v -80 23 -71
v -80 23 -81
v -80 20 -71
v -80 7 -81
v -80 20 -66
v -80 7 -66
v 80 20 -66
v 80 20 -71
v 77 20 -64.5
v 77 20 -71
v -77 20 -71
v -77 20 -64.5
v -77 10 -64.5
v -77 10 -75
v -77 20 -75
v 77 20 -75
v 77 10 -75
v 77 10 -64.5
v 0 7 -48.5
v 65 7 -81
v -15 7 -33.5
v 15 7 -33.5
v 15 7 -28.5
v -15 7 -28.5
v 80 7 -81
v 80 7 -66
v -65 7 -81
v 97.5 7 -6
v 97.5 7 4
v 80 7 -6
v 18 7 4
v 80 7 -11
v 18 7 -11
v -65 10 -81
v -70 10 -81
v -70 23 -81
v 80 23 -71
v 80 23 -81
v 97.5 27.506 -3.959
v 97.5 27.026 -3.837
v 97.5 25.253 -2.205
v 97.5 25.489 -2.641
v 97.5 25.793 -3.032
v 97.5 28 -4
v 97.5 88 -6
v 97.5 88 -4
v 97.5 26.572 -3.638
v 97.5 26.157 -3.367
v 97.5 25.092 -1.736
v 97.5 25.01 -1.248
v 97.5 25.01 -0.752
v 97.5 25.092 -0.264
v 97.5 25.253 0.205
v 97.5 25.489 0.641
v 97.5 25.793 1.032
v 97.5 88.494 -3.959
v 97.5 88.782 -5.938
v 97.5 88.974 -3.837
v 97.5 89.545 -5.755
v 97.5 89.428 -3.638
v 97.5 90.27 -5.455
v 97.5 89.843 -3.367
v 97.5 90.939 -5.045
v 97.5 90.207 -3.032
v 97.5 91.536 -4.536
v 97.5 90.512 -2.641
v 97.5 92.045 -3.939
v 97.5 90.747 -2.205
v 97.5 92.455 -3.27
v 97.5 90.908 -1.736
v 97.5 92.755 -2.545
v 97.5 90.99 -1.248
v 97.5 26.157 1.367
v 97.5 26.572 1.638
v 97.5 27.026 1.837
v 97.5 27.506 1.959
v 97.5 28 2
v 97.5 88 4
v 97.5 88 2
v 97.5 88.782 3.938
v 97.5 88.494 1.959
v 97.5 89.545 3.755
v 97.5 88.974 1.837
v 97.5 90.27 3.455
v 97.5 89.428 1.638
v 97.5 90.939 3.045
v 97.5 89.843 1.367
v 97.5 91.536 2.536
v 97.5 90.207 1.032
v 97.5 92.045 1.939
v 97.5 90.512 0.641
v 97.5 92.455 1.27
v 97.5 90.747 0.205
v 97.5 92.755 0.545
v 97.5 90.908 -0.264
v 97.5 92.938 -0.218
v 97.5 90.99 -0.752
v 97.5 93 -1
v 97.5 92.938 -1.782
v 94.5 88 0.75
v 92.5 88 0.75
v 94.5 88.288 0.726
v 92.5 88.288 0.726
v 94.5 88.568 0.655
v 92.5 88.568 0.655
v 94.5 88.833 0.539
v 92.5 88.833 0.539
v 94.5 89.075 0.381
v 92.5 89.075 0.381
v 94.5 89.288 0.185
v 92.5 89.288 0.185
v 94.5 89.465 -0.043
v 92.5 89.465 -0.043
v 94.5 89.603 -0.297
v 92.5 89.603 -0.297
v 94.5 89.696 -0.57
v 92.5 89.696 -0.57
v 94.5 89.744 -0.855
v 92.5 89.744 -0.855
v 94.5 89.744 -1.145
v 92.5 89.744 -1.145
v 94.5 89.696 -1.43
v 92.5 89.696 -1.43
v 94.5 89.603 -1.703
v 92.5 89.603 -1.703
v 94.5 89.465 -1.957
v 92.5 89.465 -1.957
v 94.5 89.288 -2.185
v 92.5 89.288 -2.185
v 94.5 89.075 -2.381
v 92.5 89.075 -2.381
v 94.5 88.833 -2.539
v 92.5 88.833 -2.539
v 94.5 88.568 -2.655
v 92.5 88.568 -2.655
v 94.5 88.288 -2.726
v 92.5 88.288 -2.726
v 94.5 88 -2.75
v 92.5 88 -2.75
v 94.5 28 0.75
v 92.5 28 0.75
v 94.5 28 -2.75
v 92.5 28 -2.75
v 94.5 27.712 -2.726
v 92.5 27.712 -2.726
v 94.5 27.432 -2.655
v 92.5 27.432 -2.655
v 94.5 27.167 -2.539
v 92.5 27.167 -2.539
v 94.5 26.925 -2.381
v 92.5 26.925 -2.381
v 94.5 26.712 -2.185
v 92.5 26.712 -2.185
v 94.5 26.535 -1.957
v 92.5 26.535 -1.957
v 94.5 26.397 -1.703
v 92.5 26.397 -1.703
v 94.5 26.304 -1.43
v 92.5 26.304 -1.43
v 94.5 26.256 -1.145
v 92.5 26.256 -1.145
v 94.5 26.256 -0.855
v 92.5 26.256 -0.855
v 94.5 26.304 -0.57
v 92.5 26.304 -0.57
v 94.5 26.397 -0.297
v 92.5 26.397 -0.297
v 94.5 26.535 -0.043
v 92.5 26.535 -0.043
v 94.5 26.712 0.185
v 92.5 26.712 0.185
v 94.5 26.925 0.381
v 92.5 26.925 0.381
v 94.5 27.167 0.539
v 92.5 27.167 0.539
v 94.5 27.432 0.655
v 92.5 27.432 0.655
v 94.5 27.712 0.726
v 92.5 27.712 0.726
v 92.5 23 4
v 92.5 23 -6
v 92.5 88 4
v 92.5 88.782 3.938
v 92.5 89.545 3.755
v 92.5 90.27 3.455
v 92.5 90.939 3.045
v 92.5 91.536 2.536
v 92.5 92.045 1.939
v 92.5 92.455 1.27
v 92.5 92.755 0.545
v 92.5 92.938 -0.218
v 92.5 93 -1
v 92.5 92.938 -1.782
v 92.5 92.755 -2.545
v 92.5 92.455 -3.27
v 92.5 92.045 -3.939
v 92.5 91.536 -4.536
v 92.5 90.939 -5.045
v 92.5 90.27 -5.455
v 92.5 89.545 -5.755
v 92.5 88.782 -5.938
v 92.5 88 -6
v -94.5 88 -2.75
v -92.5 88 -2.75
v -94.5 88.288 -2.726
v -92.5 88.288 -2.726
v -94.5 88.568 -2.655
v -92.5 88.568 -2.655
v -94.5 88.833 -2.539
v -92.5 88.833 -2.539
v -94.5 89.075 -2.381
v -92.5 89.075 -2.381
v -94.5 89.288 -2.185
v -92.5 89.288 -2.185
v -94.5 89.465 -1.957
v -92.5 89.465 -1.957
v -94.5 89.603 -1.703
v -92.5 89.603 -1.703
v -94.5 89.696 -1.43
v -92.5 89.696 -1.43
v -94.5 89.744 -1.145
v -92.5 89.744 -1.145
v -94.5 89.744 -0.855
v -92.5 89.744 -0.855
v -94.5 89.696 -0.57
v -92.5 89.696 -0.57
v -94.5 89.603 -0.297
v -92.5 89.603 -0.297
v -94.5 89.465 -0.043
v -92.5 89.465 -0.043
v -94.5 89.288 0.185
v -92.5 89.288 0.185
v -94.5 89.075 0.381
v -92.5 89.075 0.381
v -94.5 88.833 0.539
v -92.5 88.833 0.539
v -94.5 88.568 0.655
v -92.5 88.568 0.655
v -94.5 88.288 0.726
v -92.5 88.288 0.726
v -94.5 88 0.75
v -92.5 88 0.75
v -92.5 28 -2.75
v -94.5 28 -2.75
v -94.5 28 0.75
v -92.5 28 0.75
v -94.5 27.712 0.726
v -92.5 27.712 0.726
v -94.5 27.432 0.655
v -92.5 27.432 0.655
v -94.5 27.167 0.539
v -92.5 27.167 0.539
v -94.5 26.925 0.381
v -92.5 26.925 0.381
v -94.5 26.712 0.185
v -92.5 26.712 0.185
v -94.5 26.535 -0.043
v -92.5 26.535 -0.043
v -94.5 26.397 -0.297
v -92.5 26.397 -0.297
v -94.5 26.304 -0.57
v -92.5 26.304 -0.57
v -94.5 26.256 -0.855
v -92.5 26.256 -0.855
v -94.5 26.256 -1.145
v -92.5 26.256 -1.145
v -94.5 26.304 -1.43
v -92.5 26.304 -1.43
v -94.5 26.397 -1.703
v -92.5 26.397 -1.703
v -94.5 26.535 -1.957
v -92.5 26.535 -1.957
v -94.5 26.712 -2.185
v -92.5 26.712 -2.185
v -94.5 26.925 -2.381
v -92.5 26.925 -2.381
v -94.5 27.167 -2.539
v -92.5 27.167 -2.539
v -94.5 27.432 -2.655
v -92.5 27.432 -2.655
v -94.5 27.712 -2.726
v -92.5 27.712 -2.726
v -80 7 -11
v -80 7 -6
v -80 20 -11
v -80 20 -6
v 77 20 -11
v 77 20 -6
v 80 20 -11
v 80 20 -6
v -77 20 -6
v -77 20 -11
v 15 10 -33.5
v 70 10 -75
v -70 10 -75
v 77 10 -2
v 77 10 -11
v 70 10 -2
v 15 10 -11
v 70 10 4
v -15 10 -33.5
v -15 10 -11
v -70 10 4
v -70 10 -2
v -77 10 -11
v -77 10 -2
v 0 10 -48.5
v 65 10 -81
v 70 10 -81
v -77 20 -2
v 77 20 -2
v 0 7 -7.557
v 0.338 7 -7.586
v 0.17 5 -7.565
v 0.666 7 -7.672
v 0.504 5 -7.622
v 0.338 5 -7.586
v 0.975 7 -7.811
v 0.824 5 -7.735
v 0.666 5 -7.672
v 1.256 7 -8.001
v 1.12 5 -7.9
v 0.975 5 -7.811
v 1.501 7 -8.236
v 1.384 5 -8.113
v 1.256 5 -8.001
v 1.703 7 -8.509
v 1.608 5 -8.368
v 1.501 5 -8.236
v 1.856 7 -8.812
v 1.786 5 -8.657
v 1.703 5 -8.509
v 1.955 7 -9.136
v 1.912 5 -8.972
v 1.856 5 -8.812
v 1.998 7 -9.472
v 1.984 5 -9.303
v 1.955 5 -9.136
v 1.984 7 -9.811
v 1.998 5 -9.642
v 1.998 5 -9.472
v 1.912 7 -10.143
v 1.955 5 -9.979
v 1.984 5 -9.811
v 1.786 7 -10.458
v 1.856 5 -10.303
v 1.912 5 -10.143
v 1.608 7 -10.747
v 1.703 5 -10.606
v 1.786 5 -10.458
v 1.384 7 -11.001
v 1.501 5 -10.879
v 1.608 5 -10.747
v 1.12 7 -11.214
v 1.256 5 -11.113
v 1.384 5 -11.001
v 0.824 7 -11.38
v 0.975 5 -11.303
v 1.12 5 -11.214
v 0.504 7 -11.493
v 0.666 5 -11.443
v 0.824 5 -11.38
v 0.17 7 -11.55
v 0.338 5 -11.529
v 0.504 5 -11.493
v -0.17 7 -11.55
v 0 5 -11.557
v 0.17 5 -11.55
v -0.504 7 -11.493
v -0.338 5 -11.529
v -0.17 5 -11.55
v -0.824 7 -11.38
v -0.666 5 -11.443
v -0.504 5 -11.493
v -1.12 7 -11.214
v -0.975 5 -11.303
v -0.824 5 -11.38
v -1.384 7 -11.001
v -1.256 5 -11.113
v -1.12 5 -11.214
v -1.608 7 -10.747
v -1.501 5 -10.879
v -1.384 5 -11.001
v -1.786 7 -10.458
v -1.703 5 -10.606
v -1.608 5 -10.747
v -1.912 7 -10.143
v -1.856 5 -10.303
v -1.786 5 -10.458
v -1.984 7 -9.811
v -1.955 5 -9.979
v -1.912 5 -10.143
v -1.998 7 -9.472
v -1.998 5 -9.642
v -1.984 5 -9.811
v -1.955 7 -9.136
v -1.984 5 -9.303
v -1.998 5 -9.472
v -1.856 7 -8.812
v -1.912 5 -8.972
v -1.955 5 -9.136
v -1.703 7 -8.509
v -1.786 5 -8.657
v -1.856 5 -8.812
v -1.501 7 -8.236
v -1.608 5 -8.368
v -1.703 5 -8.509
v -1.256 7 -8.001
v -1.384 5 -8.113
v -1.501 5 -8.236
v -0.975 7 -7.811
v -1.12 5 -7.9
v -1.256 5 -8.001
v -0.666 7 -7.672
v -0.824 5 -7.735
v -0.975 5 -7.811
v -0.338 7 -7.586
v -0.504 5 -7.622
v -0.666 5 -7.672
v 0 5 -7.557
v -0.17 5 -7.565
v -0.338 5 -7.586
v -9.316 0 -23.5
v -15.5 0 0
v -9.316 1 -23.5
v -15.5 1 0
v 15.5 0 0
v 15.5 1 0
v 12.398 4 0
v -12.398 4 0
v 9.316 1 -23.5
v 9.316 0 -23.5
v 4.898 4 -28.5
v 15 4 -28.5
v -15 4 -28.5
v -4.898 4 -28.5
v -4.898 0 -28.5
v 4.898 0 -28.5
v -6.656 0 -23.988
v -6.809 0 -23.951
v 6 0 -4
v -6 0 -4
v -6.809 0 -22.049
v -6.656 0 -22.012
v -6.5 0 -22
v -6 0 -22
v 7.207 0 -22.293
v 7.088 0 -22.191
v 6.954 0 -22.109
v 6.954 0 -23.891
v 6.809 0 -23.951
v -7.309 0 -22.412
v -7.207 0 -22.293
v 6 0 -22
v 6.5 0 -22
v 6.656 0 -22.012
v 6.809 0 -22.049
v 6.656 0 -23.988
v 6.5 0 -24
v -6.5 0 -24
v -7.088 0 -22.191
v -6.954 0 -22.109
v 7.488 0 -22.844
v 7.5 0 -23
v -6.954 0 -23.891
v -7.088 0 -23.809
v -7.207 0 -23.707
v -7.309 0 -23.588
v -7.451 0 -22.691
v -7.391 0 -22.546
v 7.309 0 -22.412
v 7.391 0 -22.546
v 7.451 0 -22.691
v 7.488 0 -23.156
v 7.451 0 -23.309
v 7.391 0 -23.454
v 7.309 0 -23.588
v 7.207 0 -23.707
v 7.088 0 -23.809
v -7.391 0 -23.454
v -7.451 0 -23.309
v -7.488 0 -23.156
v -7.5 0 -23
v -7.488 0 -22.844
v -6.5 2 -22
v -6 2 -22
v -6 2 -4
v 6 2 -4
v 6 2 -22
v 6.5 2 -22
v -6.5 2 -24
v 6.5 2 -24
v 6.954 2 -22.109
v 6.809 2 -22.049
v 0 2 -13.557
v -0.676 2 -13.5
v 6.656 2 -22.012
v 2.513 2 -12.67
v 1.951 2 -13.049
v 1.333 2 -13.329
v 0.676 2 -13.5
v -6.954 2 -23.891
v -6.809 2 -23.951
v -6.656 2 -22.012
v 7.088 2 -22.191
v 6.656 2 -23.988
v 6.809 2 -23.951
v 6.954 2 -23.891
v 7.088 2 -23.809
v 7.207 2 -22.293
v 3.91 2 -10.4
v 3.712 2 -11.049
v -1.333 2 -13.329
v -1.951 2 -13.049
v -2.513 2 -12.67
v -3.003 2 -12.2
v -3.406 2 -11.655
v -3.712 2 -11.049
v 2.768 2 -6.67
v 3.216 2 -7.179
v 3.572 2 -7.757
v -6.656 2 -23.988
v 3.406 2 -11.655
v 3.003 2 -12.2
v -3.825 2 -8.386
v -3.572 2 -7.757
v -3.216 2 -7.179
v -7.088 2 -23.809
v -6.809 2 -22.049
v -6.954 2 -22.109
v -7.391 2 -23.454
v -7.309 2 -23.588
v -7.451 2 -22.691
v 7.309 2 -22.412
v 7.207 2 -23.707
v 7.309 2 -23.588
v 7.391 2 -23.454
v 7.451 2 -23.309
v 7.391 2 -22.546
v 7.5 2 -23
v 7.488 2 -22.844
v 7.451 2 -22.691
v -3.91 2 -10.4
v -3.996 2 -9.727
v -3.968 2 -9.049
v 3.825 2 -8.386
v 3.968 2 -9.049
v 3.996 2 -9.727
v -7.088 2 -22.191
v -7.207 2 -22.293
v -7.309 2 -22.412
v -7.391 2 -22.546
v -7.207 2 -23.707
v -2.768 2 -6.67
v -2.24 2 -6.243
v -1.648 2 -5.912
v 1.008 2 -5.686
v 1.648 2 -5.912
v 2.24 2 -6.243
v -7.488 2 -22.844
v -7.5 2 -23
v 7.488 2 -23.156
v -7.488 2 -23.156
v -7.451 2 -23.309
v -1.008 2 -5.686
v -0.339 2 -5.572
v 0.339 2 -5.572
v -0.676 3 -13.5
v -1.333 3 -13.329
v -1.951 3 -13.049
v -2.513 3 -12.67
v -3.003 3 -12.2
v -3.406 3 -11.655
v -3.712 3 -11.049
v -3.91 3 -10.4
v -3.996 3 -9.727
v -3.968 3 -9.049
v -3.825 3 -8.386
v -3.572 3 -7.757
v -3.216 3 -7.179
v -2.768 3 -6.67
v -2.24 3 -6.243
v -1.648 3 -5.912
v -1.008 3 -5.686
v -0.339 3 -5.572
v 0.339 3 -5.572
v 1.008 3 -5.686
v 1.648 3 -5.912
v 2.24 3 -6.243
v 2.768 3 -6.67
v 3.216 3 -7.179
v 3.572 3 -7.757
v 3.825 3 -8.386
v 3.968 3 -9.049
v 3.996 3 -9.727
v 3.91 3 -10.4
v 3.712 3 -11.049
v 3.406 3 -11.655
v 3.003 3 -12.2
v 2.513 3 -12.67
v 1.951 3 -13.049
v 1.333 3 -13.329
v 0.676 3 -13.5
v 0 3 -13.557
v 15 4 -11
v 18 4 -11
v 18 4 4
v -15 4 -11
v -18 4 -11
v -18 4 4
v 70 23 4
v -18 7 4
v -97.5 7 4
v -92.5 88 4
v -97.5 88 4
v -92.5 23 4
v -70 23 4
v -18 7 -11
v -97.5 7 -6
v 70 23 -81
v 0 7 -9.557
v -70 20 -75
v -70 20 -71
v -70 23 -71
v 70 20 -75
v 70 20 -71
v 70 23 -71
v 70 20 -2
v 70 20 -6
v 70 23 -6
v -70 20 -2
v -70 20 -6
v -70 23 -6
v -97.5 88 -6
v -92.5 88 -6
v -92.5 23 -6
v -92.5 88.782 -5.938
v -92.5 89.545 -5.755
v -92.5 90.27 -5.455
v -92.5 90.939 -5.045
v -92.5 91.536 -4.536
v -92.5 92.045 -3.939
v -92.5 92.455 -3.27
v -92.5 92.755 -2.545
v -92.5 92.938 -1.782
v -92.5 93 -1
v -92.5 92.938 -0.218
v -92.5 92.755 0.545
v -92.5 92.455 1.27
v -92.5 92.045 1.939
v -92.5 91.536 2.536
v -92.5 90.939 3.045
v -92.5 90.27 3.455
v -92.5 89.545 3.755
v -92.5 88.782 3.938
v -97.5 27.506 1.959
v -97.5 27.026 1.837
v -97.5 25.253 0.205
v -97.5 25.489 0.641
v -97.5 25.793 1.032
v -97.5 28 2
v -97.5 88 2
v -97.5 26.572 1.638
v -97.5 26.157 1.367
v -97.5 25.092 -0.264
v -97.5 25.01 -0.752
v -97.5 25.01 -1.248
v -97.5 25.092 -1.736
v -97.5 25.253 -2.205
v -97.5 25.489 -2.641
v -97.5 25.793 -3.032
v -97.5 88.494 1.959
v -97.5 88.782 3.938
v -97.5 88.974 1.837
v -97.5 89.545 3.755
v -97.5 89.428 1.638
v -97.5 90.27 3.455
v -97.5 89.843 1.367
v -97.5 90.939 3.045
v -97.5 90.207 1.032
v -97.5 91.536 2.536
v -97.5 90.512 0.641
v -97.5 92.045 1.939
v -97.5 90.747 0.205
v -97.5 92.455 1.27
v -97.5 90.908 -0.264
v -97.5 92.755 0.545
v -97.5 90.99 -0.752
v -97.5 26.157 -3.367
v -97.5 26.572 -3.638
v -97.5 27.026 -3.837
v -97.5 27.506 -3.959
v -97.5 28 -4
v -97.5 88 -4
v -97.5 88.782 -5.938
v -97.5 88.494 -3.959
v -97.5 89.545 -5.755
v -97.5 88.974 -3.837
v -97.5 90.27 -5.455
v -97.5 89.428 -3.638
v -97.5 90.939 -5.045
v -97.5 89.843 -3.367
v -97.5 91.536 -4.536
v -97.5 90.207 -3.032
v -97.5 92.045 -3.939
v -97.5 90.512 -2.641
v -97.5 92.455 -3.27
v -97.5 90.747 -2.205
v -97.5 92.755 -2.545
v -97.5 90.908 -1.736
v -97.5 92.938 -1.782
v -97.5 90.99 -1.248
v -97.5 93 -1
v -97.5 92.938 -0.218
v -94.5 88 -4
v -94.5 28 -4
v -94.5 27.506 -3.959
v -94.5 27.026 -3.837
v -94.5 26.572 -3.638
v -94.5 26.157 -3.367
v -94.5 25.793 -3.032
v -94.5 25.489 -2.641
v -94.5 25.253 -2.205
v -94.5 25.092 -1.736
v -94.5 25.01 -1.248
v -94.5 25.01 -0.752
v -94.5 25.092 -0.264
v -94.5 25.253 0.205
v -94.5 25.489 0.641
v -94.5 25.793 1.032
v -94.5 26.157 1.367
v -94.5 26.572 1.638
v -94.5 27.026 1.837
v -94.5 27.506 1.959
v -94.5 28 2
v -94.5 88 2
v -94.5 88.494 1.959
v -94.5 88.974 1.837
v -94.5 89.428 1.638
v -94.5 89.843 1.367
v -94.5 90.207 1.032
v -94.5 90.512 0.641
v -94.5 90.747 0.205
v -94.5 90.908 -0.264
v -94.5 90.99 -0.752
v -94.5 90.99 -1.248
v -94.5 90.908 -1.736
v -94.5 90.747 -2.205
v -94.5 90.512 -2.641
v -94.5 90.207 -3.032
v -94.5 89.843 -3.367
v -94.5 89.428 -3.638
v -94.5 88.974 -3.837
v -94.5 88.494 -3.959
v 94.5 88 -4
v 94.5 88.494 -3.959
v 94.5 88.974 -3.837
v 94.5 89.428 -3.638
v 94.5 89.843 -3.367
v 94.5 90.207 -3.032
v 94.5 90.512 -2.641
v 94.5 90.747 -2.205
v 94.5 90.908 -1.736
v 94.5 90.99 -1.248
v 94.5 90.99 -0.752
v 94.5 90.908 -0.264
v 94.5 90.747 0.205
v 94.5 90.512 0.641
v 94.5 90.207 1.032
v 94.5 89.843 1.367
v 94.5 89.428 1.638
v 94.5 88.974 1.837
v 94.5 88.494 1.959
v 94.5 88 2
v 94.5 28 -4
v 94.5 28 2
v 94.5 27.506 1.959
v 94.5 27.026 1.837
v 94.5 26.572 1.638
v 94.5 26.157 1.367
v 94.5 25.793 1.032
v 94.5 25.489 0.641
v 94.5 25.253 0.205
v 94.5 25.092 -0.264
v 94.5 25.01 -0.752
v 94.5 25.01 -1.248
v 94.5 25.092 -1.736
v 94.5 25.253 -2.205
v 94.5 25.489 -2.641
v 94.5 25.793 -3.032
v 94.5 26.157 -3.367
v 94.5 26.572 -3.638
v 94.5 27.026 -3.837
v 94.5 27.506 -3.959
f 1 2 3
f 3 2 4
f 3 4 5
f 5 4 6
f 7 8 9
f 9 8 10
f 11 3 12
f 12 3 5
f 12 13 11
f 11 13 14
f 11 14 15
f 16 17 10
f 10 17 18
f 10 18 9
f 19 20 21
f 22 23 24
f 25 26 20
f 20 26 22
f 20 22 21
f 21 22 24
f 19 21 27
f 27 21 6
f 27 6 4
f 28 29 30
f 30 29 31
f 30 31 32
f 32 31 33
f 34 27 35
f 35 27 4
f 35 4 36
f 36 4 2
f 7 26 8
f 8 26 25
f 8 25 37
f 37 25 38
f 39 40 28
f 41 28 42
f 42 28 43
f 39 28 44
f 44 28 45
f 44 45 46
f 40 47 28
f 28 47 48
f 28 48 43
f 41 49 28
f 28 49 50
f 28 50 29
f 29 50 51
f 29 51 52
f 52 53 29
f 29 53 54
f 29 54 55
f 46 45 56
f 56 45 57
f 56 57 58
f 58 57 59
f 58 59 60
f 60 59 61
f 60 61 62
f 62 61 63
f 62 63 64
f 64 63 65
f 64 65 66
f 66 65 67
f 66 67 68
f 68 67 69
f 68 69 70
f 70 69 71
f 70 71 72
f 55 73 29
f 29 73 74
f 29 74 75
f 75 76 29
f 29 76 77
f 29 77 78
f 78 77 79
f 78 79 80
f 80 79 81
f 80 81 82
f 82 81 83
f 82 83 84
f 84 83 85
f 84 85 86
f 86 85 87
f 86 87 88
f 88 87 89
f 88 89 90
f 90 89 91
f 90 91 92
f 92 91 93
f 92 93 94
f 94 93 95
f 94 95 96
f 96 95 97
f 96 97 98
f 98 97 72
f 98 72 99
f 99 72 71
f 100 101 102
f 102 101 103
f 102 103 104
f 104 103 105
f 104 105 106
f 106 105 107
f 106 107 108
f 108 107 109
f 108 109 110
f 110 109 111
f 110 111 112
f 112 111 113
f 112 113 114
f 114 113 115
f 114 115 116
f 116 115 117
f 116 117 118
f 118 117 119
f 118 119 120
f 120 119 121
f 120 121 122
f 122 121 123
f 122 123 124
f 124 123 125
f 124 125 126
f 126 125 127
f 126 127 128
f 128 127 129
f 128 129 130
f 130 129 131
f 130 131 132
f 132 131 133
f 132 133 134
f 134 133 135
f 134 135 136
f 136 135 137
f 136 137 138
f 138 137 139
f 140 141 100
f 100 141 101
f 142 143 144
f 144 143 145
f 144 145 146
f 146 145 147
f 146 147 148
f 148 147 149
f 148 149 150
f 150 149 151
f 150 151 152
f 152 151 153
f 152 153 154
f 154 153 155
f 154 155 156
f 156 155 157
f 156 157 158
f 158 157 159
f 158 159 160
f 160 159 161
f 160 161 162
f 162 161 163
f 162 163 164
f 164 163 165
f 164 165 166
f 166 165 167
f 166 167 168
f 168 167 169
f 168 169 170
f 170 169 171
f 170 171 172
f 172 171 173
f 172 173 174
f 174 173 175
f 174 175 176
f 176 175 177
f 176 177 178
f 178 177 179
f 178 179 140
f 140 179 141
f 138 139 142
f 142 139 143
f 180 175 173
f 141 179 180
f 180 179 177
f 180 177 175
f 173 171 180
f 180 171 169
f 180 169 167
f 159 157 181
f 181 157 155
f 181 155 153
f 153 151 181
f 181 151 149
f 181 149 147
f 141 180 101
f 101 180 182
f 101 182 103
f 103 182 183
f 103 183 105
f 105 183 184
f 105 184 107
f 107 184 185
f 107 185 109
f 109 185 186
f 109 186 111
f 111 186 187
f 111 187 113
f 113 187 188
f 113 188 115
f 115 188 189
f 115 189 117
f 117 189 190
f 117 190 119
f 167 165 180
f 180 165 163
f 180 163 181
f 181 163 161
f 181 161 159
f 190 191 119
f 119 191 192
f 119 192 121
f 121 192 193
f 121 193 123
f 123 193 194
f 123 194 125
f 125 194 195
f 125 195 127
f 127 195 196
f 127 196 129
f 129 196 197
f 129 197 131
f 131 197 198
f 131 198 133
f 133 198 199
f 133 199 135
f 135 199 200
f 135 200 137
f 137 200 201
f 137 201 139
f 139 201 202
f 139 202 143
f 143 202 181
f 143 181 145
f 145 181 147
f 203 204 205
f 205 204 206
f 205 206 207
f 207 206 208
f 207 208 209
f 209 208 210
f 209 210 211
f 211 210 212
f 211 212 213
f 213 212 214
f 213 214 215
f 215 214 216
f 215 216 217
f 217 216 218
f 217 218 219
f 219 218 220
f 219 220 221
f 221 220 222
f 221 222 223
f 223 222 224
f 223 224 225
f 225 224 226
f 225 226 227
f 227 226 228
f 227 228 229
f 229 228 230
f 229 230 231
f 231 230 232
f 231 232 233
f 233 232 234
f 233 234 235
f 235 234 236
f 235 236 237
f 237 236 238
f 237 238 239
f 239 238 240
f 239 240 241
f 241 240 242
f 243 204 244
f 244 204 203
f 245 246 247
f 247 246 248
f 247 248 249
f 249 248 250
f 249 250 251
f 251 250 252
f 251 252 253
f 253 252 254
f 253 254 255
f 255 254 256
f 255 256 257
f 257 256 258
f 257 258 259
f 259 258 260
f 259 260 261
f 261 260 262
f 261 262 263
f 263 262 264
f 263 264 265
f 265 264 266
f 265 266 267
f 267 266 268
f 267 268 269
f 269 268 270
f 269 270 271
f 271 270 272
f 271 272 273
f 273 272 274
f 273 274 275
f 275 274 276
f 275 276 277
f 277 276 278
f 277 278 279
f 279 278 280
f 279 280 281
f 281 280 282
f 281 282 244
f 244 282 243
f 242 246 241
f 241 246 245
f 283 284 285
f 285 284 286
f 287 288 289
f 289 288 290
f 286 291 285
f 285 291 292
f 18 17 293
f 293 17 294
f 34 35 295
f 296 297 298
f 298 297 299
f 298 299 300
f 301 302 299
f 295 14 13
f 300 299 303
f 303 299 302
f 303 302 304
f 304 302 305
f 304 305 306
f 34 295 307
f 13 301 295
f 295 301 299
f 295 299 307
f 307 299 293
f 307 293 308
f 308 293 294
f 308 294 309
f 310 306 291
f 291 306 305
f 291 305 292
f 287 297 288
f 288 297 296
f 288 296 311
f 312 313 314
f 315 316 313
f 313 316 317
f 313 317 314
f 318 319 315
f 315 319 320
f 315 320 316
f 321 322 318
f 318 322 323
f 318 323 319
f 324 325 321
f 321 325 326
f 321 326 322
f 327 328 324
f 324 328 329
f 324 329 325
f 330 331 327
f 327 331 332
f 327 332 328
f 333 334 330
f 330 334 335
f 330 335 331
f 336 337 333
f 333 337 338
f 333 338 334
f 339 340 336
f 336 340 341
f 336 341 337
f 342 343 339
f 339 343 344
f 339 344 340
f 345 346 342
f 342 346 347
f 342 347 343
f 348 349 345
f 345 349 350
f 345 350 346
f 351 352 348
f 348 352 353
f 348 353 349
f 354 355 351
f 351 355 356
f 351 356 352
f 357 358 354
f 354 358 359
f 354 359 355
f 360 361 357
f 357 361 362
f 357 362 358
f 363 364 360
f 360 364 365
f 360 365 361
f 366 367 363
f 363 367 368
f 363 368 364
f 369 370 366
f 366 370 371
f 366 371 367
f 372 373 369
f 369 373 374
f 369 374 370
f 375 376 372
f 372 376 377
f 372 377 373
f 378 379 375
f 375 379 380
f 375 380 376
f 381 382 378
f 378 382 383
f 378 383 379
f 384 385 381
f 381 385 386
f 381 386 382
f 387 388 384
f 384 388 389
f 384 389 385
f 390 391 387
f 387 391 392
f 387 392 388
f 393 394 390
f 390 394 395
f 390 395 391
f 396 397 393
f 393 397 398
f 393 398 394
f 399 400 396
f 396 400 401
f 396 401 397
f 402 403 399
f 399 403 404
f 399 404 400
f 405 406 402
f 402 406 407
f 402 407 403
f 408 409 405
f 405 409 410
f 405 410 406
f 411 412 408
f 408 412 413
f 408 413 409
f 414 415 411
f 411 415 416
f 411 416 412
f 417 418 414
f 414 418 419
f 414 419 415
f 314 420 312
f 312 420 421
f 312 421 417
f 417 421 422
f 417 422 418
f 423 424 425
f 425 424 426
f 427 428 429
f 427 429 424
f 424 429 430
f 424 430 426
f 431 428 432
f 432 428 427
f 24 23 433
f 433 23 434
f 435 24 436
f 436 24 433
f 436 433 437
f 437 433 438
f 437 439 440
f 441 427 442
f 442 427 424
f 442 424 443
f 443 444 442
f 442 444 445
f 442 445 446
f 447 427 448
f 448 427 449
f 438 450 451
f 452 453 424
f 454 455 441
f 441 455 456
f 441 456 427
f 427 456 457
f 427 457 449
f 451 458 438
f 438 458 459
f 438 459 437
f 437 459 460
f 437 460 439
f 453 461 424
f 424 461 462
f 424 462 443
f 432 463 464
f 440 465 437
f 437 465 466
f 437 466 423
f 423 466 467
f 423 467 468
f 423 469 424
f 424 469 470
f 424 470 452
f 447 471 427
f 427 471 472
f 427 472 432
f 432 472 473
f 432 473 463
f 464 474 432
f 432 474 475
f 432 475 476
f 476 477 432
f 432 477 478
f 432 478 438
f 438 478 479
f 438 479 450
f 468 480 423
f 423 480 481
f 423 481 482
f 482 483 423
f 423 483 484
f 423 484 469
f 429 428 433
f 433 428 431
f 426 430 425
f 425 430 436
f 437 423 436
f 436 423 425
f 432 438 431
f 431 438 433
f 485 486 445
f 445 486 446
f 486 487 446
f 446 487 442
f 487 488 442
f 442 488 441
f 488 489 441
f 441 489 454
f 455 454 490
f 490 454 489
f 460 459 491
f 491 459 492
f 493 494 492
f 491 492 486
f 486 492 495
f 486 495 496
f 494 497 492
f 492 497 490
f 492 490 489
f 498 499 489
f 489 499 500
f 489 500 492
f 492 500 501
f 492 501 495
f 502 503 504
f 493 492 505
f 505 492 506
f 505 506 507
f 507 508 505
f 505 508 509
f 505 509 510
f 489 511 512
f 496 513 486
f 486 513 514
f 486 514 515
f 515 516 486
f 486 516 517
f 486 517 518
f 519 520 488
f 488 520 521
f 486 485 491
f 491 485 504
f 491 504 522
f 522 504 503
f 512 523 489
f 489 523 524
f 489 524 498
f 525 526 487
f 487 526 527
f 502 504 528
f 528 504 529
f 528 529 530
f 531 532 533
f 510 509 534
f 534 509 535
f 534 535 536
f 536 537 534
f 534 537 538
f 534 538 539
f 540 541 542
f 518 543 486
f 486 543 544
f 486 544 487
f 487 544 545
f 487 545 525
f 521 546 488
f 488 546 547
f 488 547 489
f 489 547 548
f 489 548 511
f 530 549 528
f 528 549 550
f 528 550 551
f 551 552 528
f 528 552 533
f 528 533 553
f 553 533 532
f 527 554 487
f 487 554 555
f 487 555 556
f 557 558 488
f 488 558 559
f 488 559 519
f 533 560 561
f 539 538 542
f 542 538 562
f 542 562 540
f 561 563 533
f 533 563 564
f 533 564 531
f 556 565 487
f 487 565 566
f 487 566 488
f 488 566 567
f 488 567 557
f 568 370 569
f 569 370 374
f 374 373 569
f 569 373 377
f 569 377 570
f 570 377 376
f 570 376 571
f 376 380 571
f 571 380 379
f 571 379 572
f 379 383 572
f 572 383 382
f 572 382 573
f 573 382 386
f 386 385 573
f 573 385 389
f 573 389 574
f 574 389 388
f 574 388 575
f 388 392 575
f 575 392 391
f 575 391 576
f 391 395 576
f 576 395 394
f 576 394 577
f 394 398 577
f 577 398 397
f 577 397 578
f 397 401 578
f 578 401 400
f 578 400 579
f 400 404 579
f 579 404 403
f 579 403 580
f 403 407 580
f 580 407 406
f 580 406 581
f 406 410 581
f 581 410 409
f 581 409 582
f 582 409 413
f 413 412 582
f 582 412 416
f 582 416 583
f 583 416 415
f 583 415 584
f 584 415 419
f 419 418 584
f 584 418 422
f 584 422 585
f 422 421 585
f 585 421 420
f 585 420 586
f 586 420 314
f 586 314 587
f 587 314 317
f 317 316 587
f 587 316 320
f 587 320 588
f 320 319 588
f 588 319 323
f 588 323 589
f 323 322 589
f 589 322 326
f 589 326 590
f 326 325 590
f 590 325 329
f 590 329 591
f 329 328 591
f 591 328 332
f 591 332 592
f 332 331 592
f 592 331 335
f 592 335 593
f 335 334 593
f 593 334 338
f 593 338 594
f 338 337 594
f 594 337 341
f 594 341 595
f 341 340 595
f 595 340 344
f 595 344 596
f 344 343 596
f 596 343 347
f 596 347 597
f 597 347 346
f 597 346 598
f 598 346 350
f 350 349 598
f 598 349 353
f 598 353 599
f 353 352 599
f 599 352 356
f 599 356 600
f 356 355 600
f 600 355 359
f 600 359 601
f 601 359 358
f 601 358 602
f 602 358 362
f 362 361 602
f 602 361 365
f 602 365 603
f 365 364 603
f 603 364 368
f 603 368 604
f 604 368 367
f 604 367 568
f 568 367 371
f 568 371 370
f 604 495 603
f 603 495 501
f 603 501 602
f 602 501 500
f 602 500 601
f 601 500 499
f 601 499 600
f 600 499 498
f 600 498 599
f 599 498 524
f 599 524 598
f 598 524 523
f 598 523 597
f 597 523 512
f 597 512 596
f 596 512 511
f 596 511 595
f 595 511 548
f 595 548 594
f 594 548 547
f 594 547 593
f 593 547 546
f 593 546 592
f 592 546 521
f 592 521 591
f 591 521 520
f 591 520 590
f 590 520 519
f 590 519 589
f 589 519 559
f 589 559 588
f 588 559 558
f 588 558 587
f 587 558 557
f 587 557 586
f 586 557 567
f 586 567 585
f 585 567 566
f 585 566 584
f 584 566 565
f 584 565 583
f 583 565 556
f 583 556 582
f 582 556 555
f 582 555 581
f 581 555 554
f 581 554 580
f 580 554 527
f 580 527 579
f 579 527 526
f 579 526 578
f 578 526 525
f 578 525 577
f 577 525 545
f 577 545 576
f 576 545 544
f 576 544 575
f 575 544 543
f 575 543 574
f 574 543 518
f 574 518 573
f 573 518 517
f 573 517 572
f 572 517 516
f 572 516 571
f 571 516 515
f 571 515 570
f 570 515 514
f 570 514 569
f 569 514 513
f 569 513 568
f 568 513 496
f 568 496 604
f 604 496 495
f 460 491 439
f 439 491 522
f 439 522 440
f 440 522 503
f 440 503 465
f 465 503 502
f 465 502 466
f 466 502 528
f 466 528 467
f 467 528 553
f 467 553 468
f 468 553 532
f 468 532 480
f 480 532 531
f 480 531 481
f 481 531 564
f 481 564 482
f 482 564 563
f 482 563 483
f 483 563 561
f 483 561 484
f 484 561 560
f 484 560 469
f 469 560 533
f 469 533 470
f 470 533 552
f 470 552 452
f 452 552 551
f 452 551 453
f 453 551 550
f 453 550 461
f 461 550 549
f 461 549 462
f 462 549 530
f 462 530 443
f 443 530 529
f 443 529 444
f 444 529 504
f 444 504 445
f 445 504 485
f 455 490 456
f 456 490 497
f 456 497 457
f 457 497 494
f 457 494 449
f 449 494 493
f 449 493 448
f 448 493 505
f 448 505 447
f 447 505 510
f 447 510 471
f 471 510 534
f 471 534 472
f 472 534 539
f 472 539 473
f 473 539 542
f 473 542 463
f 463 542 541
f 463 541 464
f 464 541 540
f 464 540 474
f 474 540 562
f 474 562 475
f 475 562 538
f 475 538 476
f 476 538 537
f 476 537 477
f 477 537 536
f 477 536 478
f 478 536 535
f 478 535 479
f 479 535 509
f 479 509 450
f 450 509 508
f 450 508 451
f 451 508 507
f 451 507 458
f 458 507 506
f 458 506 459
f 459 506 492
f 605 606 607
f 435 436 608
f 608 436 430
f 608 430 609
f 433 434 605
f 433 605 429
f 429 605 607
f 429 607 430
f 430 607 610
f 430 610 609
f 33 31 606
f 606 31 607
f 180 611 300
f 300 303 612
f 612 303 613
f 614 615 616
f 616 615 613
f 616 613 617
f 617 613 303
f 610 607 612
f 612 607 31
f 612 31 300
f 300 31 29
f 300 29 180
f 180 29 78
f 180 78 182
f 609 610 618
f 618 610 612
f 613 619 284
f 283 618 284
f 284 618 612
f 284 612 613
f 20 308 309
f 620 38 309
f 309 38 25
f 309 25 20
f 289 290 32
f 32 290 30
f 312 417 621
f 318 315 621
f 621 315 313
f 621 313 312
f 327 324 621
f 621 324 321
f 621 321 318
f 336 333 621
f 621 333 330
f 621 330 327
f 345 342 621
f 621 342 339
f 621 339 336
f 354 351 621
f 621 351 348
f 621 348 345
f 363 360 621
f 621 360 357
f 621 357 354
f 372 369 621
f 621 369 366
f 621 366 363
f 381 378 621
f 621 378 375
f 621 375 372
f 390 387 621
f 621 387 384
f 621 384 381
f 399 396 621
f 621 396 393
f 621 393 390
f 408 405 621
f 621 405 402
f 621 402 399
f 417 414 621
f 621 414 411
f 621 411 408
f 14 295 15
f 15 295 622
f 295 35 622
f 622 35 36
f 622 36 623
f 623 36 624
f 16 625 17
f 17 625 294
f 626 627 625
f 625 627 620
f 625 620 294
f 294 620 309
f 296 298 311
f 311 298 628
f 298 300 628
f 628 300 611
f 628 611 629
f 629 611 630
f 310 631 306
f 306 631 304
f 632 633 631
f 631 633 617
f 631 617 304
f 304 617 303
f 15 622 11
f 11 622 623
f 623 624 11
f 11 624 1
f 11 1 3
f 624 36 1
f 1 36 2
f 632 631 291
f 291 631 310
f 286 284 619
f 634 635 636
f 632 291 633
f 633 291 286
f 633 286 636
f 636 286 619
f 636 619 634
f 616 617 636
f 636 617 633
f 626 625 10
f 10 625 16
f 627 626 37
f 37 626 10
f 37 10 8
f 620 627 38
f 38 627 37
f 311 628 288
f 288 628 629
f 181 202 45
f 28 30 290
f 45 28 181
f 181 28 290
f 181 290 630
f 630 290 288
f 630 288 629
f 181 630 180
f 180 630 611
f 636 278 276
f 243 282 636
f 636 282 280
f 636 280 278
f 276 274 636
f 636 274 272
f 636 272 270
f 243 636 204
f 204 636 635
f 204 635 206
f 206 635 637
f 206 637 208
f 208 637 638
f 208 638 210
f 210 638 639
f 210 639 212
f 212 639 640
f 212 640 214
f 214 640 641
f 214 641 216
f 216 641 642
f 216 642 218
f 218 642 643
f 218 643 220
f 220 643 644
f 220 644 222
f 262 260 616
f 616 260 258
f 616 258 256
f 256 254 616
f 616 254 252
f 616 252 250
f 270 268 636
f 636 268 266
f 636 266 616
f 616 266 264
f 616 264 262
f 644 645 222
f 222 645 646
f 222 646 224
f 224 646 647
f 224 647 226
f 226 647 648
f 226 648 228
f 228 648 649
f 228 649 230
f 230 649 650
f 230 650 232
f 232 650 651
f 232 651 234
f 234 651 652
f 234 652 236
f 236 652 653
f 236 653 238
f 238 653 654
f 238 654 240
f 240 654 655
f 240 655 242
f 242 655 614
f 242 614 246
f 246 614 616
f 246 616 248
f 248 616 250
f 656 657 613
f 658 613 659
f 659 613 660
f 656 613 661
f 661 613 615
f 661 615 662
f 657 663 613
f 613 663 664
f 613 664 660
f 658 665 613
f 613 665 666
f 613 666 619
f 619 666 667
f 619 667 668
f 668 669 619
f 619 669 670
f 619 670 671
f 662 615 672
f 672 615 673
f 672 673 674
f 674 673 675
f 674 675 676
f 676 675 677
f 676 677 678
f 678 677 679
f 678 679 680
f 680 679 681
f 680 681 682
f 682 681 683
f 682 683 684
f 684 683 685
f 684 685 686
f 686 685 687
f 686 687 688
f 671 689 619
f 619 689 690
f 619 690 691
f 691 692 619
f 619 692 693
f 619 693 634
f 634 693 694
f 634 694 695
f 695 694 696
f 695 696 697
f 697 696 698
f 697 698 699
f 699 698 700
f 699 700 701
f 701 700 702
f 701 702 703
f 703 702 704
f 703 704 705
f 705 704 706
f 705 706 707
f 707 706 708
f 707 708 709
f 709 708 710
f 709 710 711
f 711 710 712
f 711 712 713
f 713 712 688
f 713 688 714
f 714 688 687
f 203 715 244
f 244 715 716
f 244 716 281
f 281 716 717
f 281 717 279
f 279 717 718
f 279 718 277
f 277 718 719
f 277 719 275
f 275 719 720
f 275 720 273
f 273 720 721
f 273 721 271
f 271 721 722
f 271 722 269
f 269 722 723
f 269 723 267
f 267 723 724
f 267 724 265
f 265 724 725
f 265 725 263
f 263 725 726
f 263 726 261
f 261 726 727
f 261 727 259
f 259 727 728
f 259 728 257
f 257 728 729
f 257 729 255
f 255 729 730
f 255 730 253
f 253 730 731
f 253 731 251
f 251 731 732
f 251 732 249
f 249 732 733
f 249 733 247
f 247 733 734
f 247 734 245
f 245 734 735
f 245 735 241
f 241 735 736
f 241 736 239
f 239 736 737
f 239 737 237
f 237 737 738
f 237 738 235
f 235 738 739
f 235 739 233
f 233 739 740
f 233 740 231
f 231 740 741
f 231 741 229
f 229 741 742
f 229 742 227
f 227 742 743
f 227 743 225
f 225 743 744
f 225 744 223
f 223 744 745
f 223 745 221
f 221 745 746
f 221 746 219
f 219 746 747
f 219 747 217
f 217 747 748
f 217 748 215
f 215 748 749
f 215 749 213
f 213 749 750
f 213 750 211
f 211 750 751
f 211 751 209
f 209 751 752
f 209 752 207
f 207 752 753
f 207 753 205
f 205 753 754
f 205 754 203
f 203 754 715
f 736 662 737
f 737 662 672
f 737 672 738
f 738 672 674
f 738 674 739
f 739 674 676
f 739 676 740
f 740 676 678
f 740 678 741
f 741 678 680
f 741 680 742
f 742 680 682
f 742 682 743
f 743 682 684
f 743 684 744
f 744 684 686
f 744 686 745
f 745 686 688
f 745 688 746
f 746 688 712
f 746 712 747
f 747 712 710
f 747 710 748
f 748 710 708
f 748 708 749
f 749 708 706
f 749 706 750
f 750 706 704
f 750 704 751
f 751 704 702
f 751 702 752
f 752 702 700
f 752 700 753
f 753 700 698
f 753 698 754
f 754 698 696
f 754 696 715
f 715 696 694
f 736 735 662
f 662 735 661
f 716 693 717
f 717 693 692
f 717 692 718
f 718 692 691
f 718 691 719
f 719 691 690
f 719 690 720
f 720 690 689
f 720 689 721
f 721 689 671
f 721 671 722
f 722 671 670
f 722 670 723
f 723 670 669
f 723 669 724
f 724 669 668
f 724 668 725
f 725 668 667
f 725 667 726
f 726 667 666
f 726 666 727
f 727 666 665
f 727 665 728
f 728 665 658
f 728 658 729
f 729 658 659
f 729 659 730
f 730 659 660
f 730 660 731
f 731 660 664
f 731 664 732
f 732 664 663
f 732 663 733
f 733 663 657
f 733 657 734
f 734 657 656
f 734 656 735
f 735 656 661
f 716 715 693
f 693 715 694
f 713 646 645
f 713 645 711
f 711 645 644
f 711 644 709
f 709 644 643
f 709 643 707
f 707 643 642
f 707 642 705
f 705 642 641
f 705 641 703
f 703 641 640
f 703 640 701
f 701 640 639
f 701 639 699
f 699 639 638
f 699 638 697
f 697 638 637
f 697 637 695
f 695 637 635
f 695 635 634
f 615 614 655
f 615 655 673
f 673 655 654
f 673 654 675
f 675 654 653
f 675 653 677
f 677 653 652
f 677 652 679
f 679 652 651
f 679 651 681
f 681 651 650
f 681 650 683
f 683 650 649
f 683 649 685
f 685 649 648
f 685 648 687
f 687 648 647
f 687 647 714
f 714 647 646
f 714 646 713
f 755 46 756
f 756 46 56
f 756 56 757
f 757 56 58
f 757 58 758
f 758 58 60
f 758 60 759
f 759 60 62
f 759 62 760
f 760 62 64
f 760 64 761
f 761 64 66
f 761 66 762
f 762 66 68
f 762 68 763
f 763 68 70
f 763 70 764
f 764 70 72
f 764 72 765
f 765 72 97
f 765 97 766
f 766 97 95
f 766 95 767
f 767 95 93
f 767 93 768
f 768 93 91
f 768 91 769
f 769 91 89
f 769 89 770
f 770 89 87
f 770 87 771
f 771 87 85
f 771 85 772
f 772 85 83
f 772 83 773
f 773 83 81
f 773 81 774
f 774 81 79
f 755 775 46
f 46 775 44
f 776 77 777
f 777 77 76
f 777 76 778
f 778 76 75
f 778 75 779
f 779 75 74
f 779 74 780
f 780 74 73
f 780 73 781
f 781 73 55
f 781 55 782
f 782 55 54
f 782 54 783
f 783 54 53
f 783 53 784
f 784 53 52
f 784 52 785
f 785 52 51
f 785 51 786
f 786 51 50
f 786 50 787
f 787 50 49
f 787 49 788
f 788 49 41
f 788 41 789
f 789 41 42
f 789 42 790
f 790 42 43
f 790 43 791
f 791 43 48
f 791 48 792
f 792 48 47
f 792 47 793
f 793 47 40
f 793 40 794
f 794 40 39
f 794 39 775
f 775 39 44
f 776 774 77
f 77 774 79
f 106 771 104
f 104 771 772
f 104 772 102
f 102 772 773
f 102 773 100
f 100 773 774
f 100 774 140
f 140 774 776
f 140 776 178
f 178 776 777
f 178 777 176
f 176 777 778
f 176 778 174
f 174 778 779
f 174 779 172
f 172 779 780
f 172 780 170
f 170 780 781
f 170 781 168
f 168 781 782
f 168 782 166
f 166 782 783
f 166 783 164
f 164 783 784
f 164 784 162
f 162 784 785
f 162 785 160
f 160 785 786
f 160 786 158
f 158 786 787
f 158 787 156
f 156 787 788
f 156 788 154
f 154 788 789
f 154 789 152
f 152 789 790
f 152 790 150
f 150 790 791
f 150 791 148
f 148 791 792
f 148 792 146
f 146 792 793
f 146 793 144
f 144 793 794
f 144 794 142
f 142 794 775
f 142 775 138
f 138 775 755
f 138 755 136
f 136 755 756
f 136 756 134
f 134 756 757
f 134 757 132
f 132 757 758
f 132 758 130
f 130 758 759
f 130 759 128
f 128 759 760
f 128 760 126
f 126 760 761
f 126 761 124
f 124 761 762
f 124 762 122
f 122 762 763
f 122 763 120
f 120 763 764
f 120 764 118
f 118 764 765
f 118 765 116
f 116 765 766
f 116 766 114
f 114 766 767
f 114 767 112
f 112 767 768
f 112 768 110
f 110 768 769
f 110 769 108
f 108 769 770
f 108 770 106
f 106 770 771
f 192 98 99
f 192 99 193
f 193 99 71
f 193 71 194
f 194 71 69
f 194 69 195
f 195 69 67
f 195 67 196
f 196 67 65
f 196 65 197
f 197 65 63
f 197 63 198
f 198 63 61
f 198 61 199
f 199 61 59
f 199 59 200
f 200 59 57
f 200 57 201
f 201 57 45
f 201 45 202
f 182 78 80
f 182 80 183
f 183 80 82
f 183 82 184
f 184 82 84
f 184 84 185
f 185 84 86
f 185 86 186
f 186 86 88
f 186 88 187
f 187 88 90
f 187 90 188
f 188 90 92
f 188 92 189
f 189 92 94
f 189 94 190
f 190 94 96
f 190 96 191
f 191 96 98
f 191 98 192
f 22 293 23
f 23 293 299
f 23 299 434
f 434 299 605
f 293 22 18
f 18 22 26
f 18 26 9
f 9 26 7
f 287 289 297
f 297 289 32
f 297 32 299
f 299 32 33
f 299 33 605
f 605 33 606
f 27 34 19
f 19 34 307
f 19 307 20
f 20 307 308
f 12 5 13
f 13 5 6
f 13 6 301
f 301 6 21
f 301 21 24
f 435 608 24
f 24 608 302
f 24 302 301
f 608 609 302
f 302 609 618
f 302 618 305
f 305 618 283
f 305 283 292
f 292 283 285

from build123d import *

# Parameters (mm, degrees)
EXTRUDE_1_DEPTH        = 4
CHAMFER_1_SIZE         = 3
CUT_EXTRUDE_1_DEPTH    = 33.687918257
SKETCH_3_R             = 9.557368967
EXTRUDE_2_DEPTH        = 3
CUT_EXTRUDE_2_DEPTH    = 2
SKETCH_7_R             = 2
CUT_EXTRUDE_3_DEPTH    = 34.188853551
FILLET_2_R             = 1
SKETCH_9_W             = 36
SKETCH_9_H             = 32.5
SKETCH_9_R             = 9.557368967
EXTRUDE_4_DEPTH        = 3
SKETCH_10_W            = 160
SKETCH_10_H            = 85
EXTRUDE_5_DEPTH        = 3
SKETCH_11_W            = 3
SKETCH_11_H            = 85
EXTRUDE_6_DEPTH        = 10
SKETCH_12_W            = 10
SKETCH_12_H            = 6
EXTRUDE_7_DEPTH        = 10
SKETCH_13_W            = 10
SKETCH_13_H            = 10
EXTRUDE_8_DEPTH        = 3
SKETCH_15_W            = 10
SKETCH_15_H            = 16
EXTRUDE_10_DEPTH       = 12.5
SKETCH_17_W            = 10
SKETCH_17_H            = 86
EXTRUDE_11_DEPTH       = 5
CUT_EXTRUDE_5_DEPTH    = 213.052469922
CUT_EXTRUDE_6_DEPTH    = 3
FILLET_3_R             = 5
FILLET_3_OF_MIRROR_2_R = 5
CUT_EXTRUDE_7_DEPTH    = 147.274570586


with BuildPart() as part:
    # 草图1 → 凸台-拉伸1 (new body)
    with BuildSketch(Plane(origin=(0, 0, 0), x_dir=(1, 0, 0), z_dir=(0, 1, 0))):
        Polygon((-8, 28.5), (8, 28.5), (15.5, 0), (-15.5, 0), align=None)
    extrude(amount=EXTRUDE_1_DEPTH)

    # Chamfer 1
    chamfer_1_edges = [part.edges().sort_by_distance(p)[0] for p in [
        (11.75, 4, -14.25),
        (-11.75, 4, -14.25),
    ]]
    chamfer(chamfer_1_edges, length=CHAMFER_1_SIZE)

    # 草图2 → 切除-拉伸1 (cut, through all)
    with BuildSketch(Plane(origin=(0, 4, 0), x_dir=(1, 0, 0), z_dir=(0, 1, 0))):
        Polygon((-4.897860626, 28.5), (-9.315789474, 23.5), (-9.315789474, 28.5), align=None)
        Polygon((9.315789474, 28.5), (4.897860626, 28.5), (9.315789474, 23.5), align=None)
    extrude(amount=-CUT_EXTRUDE_1_DEPTH, mode=Mode.SUBTRACT)

    # 草图3 → 凸台-拉伸2 (add)
    with BuildSketch(Plane(origin=(0, 4, 0), x_dir=(1, 0, 0), z_dir=(0, 1, 0))):
        with Locations(Location((0, 9.557368967, 0), (0, 0, 270))):
            Circle(SKETCH_3_R)
    extrude(amount=EXTRUDE_2_DEPTH)

    # 草图5 → 切除-拉伸2 (cut)
    with BuildSketch(Plane.XZ):
        Polygon((-7.5, -24), (7.5, -24), (7.5, -22), (6, -22), (6, -4), (-6, -4), (-6, -22), (-7.5, -22), align=None)
    extrude(amount=-CUT_EXTRUDE_2_DEPTH, mode=Mode.SUBTRACT)

    # 草图7 → 切除-拉伸3 (cut, through all)
    with BuildSketch(Plane(origin=(0, 7, 0), x_dir=(1, 0, 0), z_dir=(0, 1, 0))):
        with Locations(Location((0, 9.557368967, 0), (0, 0, 270))):
            Circle(SKETCH_7_R)
    extrude(amount=-CUT_EXTRUDE_3_DEPTH, mode=Mode.SUBTRACT)

    # 草图8 → 切除-旋转1 (revolve, cut)
    with BuildSketch(Plane(origin=(0, 0, 0), x_dir=(0, 0, -1), z_dir=(1, 0, 0)), mode=Mode.PRIVATE) as cut_revolve_1_sk:
        Polygon((7.557368967, 5), (5.557368967, 3), (5.557368967, 2), (9.557368967, 2), (9.557368967, 5), align=None)
    revolve(cut_revolve_1_sk.sketch.rotate(Axis((0, -993, -9.557368967), (0, 1, 0)), 180), axis=Axis((0, -993, -9.557368967), (0, 1, 0)), mode=Mode.SUBTRACT)

    # 圆角2
    fillet_2_edges = [part.edges().sort_by_distance(p)[0] for p in [
        (-7.5, 1, -22),
        (-7.5, 1, -24),
        (7.5, 1, -24),
        (7.5, 1, -22),
    ]]
    fillet(fillet_2_edges, radius=FILLET_2_R - 0.0001)  # a hair under: the kernel refuses the full size

    # 草图9 → 凸台-拉伸4 (add)
    with BuildSketch(Plane(origin=(0, 4, 0), x_dir=(1, 0, 0), z_dir=(0, 1, 0))):
        with Locations((0, 12.25)):
            Rectangle(SKETCH_9_W, SKETCH_9_H)
        with Locations((0, 9.557368967)):
            Circle(SKETCH_9_R, mode=Mode.SUBTRACT)
    extrude(amount=EXTRUDE_4_DEPTH)

    # 草图10 → 凸台-拉伸5 (add)
    with BuildSketch(Plane(origin=(0, 7, 0), x_dir=(1, 0, 0), z_dir=(0, 1, 0))):
        with Locations((0, 38.5)):
            Rectangle(SKETCH_10_W, SKETCH_10_H)
    extrude(amount=EXTRUDE_5_DEPTH)

    # 草图11 → 凸台-拉伸6 (add)
    with BuildSketch(Plane(origin=(0, 10, 0), x_dir=(1, 0, 0), z_dir=(0, 1, 0))):
        with Locations((-78.5, 38.5)):
            Rectangle(SKETCH_11_W, SKETCH_11_H)
        with Locations((78.5, 38.5)):
            Rectangle(SKETCH_11_W, SKETCH_11_H)
    extrude(amount=EXTRUDE_6_DEPTH)

    # 草图12 → 凸台-拉伸7 (add)
    with BuildSketch(Plane(origin=(0, 10, 0), x_dir=(1, 0, 0), z_dir=(0, 1, 0))):
        with Locations((-75, 78)):
            Rectangle(SKETCH_12_W, SKETCH_12_H)
        with Locations((75, 78)):
            Rectangle(SKETCH_12_W, SKETCH_12_H)
        with Locations((75, -1)):
            Rectangle(SKETCH_12_W, SKETCH_12_H)
        with Locations((-75, -1)):
            Rectangle(SKETCH_12_W, SKETCH_12_H)
    extrude(amount=EXTRUDE_7_DEPTH)

    # 草图13 → 凸台-拉伸8 (add)
    with BuildSketch(Plane(origin=(0, 20, 0), x_dir=(1, 0, 0), z_dir=(0, 1, 0))):
        with Locations((-75, 76)):
            Rectangle(SKETCH_13_W, SKETCH_13_H)
        with Locations((-75, 1)):
            Rectangle(SKETCH_13_W, SKETCH_13_H)
        with Locations((75, 76)):
            Rectangle(SKETCH_13_W, SKETCH_13_H)
        with Locations((75, 1)):
            Rectangle(SKETCH_13_W, SKETCH_13_H)
    extrude(amount=EXTRUDE_8_DEPTH)

    # 草图15 → 凸台-拉伸10 (add)
    with BuildSketch(Plane.ZY.offset(80)):
        with Locations((-1, 15)):
            Rectangle(SKETCH_15_W, SKETCH_15_H)
    extrude_10 = extrude(amount=EXTRUDE_10_DEPTH)

    # 草图17 → 凸台-拉伸11 (add)
    with BuildSketch(Plane.ZY.offset(92.5)):
        with Locations((-1, 50)):
            Rectangle(SKETCH_17_W, SKETCH_17_H)
    extrude_11 = extrude(amount=EXTRUDE_11_DEPTH)

    # 草图19 → 切除-拉伸5 (cut, symmetric)
    with BuildSketch(Plane(origin=(-92.5, 0, 0), x_dir=(0, 0, -1), z_dir=(1, 0, 0))):
        with BuildLine():
            Line((2.75, 88), (2.75, 28))
            ThreePointArc((2.75, 28), (1, 26.25), (-0.75, 28))
            Line((-0.75, 28), (-0.75, 88))
            ThreePointArc((-0.75, 88), (1, 89.75), (2.75, 88))
        make_face()
    cut_extrude_5 = extrude(amount=CUT_EXTRUDE_5_DEPTH, both=True, mode=Mode.SUBTRACT)

    # 草图20 → 切除-拉伸6 (cut)
    with BuildSketch(Plane.ZY.offset(97.5)):
        with BuildLine():
            Line((2, 88), (2, 28))
            ThreePointArc((2, 28), (-1, 25), (-4, 28))
            Line((-4, 28), (-4, 88))
            ThreePointArc((-4, 88), (-1, 91), (2, 88))
        make_face()
    cut_extrude_6 = extrude(amount=-CUT_EXTRUDE_6_DEPTH, mode=Mode.SUBTRACT)

    # 圆角3
    fillet_3_edges = [part.edges().sort_by_distance(p)[0] for p in [
        (-95, 93, 4),
        (-95, 93, -6),
    ]]
    fillet(fillet_3_edges, radius=FILLET_3_R - 0.0001)  # a hair under: the kernel refuses the full size

    # 镜向2: 凸台-拉伸10, 凸台-拉伸11, 切除-拉伸5, 切除-拉伸6 across plane
    add(extrude_10.mirror(Plane(origin=(0, 0, 0), x_dir=(0, 0, 1), z_dir=(1, 0, 0))))
    add(extrude_11.mirror(Plane(origin=(0, 0, 0), x_dir=(0, 0, 1), z_dir=(1, 0, 0))))
    add(cut_extrude_5.mirror(Plane(origin=(0, 0, 0), x_dir=(0, 0, 1), z_dir=(1, 0, 0))), mode=Mode.SUBTRACT)
    add(cut_extrude_6.mirror(Plane(origin=(0, 0, 0), x_dir=(0, 0, 1), z_dir=(1, 0, 0))), mode=Mode.SUBTRACT)

    # 圆角3 of 镜向2
    fillet_3_of_mirror_2_edges = [part.edges().sort_by_distance(p)[0] for p in [
        (95, 93, 4),
        (95, 93, -6),
    ]]
    fillet(fillet_3_of_mirror_2_edges, radius=FILLET_3_OF_MIRROR_2_R - 0.0001)  # a hair under: the kernel refuses the full size

    # 草图21 → 切除-拉伸7 (cut, through all)
    with BuildSketch(Plane(origin=(0, 20, 0), x_dir=(1, 0, 0), z_dir=(0, 1, 0))):
        Polygon((-65, 81), (65, 81), (0, 48.5), align=None)
        Polygon((-80, 66), (-15, 33.5), (-15, 11), (-80, 11), align=None)
        Polygon((15, 11), (80, 11), (80, 66), (15, 33.5), align=None)
    extrude(amount=-CUT_EXTRUDE_7_DEPTH, mode=Mode.SUBTRACT)


solid = part.part
